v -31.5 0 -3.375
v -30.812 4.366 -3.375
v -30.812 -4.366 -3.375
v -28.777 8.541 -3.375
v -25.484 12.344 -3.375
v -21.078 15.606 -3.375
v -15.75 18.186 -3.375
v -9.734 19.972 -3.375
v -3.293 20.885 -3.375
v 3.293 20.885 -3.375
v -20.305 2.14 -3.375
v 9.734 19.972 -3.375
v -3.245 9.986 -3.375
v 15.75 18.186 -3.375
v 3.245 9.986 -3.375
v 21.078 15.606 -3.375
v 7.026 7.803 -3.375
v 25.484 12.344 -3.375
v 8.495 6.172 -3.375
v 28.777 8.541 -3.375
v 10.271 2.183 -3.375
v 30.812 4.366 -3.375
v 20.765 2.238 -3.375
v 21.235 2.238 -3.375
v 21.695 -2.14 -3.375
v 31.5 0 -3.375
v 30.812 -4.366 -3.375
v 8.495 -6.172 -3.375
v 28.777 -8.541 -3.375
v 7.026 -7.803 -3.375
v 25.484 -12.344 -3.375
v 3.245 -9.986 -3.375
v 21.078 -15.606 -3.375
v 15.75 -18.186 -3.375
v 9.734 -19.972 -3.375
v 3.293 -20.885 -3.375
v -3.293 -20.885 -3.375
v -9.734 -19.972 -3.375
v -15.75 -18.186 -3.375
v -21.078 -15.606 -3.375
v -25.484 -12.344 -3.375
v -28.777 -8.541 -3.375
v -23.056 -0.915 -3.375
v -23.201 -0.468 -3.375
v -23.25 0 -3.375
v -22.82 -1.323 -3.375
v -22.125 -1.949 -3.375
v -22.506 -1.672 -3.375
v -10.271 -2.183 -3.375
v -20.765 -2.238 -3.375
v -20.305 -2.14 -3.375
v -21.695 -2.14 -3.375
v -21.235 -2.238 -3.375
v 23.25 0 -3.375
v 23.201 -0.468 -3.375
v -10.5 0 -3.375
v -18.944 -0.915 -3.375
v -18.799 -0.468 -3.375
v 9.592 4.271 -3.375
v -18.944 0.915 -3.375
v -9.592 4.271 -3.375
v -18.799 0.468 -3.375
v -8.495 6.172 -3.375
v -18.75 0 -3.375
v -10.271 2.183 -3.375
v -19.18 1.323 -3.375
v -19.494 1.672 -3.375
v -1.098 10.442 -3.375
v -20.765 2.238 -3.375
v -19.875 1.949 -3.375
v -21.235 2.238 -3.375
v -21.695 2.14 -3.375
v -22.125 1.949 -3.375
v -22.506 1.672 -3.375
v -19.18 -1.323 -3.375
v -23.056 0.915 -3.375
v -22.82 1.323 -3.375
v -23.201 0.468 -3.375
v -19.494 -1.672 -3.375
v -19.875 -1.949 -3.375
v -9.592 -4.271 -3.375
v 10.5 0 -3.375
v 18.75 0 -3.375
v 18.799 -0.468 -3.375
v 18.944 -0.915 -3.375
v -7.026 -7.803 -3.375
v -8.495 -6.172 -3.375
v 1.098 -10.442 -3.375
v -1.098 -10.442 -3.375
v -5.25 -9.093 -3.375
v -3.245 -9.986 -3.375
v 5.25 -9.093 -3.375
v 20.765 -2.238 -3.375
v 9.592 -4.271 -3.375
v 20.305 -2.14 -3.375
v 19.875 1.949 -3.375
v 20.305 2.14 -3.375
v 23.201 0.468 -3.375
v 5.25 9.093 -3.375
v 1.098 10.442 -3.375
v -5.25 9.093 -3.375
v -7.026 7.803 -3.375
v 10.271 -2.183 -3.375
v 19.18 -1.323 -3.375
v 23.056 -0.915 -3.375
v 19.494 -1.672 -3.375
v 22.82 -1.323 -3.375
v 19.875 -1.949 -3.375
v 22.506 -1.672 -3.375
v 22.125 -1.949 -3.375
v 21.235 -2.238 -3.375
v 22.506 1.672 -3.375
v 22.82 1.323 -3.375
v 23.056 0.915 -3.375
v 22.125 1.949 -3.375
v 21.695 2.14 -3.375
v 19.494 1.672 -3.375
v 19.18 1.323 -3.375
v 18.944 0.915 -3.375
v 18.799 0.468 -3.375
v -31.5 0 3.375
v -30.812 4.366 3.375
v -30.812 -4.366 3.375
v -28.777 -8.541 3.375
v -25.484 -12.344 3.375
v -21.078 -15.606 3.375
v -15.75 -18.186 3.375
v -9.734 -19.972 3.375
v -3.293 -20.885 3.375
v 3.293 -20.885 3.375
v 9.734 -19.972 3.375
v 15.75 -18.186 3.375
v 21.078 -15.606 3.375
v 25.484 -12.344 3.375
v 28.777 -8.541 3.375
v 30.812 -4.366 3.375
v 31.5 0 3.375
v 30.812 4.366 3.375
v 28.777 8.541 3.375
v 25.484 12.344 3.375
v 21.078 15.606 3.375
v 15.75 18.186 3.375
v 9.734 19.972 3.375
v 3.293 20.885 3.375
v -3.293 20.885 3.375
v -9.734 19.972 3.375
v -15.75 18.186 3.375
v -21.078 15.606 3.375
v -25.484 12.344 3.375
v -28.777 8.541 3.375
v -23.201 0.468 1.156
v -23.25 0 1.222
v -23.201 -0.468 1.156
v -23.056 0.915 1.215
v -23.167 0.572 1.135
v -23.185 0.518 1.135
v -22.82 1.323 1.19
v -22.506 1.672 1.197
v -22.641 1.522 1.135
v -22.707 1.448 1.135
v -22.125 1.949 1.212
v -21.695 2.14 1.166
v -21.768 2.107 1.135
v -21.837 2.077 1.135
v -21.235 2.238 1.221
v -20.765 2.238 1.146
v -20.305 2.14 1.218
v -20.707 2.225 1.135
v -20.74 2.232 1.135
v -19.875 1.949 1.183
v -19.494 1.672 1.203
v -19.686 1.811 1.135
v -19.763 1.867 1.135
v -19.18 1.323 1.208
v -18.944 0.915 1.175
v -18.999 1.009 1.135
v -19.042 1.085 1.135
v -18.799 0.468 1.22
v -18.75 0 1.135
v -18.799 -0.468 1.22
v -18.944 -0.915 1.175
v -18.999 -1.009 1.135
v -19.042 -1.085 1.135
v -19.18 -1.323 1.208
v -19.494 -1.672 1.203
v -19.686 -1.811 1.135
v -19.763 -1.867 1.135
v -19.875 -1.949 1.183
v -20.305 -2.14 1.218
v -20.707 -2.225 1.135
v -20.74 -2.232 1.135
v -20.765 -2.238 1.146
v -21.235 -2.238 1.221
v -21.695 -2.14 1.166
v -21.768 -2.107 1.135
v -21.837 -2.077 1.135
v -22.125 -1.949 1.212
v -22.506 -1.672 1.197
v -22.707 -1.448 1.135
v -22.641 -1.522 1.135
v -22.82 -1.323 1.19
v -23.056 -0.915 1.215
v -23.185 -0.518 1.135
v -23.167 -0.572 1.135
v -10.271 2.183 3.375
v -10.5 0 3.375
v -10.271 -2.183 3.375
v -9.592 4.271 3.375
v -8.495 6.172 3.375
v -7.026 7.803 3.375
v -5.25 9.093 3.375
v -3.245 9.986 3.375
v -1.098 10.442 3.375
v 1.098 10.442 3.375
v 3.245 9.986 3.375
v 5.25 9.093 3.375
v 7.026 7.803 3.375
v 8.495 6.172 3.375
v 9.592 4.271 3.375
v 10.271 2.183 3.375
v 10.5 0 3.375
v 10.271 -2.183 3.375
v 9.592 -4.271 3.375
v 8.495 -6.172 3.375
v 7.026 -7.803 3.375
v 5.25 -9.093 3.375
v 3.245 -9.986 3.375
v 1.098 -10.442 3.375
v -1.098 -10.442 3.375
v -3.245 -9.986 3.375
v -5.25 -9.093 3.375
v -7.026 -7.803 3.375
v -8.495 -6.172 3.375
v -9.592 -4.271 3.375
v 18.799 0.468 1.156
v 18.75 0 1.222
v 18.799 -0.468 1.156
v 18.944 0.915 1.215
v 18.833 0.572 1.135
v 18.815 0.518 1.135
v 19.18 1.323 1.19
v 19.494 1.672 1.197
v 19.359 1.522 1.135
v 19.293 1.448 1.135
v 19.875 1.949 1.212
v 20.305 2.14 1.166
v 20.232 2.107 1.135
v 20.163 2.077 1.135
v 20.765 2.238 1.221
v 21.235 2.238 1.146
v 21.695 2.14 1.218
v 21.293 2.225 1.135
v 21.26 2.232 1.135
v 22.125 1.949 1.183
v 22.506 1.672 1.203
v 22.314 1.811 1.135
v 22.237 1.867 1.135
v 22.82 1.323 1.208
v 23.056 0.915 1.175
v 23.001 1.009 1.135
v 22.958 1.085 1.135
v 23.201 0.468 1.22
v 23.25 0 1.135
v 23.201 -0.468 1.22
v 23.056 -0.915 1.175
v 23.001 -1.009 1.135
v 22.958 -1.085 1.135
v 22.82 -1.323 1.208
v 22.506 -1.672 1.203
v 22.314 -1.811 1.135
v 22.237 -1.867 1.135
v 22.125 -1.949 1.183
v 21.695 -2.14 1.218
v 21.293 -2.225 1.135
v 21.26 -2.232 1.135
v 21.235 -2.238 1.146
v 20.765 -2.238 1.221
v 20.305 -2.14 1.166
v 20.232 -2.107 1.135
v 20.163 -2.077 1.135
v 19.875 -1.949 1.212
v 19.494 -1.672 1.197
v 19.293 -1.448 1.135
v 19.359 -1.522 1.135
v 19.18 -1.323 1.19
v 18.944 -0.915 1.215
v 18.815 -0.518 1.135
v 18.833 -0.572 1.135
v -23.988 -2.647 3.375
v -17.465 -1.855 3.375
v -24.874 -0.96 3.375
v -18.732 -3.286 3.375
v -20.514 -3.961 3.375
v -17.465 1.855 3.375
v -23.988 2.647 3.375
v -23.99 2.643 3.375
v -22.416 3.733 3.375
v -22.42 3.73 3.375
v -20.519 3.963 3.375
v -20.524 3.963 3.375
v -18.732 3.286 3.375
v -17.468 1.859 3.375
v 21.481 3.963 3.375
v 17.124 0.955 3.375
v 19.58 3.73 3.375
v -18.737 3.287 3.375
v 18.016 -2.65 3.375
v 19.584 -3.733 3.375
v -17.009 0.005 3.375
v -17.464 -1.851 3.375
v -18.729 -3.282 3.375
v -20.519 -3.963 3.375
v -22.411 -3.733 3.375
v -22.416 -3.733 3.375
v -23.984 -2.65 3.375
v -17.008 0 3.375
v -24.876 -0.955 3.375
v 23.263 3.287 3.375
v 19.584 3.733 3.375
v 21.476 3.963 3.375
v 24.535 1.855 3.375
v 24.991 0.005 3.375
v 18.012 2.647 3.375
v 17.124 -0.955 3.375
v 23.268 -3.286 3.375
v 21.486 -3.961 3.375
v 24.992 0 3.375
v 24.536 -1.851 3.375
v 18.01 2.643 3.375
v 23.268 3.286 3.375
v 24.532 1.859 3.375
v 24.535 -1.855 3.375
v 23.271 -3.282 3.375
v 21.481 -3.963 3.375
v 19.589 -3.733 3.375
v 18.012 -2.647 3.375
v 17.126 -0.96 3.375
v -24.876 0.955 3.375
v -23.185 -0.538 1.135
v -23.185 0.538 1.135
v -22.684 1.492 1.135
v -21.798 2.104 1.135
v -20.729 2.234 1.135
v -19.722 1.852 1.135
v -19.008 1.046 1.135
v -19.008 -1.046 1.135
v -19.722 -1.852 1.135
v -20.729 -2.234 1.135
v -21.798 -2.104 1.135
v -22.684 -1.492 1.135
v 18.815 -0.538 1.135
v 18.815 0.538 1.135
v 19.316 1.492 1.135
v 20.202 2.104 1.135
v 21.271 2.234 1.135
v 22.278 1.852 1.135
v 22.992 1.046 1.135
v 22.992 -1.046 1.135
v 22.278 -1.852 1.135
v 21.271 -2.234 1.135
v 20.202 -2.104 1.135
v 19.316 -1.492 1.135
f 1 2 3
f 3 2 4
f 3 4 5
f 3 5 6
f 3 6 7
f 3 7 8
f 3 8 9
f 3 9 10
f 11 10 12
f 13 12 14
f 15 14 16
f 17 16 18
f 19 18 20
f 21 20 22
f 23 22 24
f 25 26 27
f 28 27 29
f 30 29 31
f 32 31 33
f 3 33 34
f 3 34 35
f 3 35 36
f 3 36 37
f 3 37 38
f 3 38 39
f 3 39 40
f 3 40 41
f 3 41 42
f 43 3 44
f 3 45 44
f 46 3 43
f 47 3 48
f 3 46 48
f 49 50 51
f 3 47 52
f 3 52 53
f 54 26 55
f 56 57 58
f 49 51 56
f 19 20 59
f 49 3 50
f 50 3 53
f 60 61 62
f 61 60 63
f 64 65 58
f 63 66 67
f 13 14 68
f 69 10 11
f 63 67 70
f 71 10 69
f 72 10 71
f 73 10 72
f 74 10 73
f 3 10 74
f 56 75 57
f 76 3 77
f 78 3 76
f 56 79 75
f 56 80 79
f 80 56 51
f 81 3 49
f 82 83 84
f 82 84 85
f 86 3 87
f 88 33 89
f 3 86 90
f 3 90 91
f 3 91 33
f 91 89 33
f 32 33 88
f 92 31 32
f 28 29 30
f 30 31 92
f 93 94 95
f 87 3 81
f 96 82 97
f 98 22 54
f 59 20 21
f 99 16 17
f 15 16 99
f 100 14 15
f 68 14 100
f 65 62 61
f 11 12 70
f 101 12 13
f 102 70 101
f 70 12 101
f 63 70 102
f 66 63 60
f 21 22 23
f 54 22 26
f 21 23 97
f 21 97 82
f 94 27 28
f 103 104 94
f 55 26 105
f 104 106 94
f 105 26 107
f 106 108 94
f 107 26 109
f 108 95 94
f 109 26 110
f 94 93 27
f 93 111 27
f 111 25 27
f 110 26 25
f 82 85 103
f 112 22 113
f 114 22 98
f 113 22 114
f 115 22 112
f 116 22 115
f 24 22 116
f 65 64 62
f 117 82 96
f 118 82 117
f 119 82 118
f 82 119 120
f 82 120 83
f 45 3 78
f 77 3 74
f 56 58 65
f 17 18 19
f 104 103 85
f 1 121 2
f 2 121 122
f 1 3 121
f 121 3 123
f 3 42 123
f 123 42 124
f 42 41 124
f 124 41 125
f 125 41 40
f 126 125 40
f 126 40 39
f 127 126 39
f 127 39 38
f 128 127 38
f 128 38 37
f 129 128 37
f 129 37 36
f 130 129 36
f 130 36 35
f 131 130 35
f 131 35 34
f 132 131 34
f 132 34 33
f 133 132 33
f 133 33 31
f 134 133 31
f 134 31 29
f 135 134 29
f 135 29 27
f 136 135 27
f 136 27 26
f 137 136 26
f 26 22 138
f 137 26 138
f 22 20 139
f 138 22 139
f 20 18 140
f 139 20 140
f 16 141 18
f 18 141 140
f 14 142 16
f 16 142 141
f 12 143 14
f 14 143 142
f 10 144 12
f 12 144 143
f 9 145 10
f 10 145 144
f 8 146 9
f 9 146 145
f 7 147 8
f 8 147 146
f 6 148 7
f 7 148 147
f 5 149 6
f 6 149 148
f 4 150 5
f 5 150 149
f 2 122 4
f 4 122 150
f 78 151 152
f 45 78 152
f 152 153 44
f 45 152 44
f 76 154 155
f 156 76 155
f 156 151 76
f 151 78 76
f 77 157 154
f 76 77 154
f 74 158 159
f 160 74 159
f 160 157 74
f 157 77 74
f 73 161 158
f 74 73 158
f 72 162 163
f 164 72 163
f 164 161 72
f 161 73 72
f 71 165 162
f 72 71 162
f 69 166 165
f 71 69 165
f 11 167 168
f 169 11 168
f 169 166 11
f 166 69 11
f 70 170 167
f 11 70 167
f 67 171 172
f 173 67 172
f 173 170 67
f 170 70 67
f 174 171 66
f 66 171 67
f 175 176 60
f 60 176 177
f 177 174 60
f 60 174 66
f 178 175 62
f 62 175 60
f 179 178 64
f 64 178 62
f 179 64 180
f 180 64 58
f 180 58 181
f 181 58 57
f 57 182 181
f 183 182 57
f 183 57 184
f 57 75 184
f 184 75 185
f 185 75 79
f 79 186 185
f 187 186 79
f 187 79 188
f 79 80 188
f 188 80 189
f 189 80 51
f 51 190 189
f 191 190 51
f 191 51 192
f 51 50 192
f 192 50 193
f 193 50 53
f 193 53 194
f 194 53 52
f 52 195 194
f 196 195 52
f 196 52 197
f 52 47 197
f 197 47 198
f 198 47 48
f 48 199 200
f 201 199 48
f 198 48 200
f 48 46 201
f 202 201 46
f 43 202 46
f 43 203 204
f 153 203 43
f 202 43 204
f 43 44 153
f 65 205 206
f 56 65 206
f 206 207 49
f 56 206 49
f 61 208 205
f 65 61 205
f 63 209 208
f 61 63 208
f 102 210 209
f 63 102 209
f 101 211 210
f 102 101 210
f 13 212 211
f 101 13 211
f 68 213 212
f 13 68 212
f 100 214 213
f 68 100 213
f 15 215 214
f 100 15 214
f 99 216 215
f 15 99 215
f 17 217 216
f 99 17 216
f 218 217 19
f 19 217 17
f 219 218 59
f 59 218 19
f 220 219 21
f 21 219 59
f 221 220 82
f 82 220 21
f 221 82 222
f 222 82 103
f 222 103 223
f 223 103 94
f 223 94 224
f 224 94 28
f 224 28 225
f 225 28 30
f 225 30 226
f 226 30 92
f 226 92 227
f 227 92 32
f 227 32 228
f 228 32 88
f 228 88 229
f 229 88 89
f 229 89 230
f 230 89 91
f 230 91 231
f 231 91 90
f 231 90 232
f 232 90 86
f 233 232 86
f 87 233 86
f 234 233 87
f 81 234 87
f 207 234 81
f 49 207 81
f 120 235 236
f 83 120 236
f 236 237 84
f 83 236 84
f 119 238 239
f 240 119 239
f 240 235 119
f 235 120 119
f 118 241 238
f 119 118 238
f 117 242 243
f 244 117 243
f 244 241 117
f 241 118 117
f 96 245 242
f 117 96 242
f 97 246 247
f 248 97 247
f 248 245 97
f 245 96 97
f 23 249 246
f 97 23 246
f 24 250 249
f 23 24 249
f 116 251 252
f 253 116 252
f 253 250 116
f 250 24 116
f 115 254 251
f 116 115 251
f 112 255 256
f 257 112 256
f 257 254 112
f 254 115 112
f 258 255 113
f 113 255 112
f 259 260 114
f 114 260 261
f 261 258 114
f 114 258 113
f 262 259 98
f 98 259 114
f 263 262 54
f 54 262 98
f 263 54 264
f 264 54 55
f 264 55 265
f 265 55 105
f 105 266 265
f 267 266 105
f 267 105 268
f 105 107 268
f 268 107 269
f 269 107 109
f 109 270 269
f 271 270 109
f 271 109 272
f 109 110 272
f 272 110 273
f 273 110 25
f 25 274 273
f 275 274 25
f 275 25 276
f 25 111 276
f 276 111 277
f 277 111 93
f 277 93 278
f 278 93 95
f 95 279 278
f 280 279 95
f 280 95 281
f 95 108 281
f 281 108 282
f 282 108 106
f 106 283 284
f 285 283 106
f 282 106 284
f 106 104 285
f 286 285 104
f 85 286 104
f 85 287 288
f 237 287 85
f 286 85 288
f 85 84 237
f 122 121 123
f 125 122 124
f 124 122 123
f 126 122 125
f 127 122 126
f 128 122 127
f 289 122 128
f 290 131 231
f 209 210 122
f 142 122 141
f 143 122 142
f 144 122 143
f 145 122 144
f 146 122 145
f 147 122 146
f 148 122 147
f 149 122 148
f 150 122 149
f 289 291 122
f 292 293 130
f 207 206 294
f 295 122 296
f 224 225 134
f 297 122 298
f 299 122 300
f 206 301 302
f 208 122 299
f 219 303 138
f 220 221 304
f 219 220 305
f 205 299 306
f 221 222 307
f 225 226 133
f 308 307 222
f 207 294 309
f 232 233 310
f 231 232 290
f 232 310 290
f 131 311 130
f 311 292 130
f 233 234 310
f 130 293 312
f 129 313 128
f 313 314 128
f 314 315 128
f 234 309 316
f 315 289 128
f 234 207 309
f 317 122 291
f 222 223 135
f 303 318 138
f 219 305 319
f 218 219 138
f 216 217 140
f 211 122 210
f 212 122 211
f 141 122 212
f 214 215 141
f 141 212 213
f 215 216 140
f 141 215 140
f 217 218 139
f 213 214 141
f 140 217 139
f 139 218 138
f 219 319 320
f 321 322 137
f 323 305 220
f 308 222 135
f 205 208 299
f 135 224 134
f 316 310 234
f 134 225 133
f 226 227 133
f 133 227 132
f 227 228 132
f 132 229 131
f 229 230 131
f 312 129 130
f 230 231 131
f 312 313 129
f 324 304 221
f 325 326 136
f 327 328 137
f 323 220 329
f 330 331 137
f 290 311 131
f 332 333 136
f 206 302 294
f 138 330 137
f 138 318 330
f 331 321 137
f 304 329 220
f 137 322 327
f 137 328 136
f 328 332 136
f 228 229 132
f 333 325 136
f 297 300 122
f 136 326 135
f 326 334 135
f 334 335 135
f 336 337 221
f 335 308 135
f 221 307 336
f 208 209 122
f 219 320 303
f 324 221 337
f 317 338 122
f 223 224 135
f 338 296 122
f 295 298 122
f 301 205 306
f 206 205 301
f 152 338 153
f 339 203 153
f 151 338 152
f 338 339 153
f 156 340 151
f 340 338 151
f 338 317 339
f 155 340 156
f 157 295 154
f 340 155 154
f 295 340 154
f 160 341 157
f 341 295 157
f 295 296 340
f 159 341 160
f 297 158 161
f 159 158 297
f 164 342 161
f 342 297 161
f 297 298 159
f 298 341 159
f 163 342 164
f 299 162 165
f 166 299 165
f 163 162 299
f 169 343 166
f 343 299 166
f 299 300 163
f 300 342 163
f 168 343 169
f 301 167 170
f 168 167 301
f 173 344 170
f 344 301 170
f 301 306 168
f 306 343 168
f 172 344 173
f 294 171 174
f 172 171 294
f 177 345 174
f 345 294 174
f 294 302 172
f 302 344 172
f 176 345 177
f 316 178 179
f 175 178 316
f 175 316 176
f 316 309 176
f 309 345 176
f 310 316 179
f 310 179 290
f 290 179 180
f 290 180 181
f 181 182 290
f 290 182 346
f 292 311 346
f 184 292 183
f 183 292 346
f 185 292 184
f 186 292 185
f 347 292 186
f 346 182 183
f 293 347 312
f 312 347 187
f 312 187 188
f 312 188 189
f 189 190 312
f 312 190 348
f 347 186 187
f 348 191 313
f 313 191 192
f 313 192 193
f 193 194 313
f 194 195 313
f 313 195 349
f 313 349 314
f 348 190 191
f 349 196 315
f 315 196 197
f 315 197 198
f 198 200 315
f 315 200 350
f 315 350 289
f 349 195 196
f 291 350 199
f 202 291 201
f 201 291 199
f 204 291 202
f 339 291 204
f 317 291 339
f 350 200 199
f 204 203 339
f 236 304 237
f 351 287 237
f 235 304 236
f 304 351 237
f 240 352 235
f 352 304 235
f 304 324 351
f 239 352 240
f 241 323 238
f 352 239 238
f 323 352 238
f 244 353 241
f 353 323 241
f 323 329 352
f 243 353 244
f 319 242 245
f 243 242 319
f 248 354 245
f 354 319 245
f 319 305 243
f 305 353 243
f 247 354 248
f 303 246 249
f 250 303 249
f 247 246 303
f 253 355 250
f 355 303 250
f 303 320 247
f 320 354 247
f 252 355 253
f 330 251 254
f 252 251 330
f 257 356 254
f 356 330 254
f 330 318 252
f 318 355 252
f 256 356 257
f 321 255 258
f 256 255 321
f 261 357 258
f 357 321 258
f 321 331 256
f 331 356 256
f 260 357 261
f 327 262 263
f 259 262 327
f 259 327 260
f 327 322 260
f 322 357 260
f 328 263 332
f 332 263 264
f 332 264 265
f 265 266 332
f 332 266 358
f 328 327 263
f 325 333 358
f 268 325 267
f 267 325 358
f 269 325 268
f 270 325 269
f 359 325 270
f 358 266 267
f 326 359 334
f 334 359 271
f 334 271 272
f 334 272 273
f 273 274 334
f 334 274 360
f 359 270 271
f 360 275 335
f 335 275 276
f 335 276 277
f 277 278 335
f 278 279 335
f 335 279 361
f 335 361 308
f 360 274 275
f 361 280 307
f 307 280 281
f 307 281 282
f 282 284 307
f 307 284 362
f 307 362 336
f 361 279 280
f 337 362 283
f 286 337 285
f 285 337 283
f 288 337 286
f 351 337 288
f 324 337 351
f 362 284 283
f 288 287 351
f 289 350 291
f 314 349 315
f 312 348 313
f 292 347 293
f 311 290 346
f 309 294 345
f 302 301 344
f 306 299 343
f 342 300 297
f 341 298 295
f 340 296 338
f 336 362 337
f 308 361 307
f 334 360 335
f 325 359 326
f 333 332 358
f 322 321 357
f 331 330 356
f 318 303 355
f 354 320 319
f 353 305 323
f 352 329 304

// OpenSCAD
module oval(w, h, height, center = false)
{
    scale([1, h/w, 1]) cylinder(h=height, r=w, center=center);
}

module wallmount (inner_dia, screwdia, screwhead, headheight)
{
    h  = screwdia * 1.5;
    hh = headheight / 2;
    sr = screwdia / 2;
    sh = screwhead / 2;
    
    difference () {
        oval (inner_dia * 1.5, inner_dia, h, center = true);
        cylinder (r = inner_dia / 2, h = 2 * h, center = true);
        translate ([inner_dia, 0, 0])
            cylinder (r = sr, h = 2 * h, center = true, $fs = 0.1);
        translate ([inner_dia, 0, -hh + h / 2 + 0.01])
            cylinder (r1 = sr, r2 = sh, h = hh);
        translate ([-inner_dia, 0, 0])
            cylinder (r = sr, h = 2 * h, center = true, $fs = 0.1);
        translate ([-inner_dia, 0, -hh + h / 2 + 0.01])
            cylinder (r1 = sr, r2 = sh, h = hh);
    }
}

wallmount (21, 4.5, 8, 4.5);
